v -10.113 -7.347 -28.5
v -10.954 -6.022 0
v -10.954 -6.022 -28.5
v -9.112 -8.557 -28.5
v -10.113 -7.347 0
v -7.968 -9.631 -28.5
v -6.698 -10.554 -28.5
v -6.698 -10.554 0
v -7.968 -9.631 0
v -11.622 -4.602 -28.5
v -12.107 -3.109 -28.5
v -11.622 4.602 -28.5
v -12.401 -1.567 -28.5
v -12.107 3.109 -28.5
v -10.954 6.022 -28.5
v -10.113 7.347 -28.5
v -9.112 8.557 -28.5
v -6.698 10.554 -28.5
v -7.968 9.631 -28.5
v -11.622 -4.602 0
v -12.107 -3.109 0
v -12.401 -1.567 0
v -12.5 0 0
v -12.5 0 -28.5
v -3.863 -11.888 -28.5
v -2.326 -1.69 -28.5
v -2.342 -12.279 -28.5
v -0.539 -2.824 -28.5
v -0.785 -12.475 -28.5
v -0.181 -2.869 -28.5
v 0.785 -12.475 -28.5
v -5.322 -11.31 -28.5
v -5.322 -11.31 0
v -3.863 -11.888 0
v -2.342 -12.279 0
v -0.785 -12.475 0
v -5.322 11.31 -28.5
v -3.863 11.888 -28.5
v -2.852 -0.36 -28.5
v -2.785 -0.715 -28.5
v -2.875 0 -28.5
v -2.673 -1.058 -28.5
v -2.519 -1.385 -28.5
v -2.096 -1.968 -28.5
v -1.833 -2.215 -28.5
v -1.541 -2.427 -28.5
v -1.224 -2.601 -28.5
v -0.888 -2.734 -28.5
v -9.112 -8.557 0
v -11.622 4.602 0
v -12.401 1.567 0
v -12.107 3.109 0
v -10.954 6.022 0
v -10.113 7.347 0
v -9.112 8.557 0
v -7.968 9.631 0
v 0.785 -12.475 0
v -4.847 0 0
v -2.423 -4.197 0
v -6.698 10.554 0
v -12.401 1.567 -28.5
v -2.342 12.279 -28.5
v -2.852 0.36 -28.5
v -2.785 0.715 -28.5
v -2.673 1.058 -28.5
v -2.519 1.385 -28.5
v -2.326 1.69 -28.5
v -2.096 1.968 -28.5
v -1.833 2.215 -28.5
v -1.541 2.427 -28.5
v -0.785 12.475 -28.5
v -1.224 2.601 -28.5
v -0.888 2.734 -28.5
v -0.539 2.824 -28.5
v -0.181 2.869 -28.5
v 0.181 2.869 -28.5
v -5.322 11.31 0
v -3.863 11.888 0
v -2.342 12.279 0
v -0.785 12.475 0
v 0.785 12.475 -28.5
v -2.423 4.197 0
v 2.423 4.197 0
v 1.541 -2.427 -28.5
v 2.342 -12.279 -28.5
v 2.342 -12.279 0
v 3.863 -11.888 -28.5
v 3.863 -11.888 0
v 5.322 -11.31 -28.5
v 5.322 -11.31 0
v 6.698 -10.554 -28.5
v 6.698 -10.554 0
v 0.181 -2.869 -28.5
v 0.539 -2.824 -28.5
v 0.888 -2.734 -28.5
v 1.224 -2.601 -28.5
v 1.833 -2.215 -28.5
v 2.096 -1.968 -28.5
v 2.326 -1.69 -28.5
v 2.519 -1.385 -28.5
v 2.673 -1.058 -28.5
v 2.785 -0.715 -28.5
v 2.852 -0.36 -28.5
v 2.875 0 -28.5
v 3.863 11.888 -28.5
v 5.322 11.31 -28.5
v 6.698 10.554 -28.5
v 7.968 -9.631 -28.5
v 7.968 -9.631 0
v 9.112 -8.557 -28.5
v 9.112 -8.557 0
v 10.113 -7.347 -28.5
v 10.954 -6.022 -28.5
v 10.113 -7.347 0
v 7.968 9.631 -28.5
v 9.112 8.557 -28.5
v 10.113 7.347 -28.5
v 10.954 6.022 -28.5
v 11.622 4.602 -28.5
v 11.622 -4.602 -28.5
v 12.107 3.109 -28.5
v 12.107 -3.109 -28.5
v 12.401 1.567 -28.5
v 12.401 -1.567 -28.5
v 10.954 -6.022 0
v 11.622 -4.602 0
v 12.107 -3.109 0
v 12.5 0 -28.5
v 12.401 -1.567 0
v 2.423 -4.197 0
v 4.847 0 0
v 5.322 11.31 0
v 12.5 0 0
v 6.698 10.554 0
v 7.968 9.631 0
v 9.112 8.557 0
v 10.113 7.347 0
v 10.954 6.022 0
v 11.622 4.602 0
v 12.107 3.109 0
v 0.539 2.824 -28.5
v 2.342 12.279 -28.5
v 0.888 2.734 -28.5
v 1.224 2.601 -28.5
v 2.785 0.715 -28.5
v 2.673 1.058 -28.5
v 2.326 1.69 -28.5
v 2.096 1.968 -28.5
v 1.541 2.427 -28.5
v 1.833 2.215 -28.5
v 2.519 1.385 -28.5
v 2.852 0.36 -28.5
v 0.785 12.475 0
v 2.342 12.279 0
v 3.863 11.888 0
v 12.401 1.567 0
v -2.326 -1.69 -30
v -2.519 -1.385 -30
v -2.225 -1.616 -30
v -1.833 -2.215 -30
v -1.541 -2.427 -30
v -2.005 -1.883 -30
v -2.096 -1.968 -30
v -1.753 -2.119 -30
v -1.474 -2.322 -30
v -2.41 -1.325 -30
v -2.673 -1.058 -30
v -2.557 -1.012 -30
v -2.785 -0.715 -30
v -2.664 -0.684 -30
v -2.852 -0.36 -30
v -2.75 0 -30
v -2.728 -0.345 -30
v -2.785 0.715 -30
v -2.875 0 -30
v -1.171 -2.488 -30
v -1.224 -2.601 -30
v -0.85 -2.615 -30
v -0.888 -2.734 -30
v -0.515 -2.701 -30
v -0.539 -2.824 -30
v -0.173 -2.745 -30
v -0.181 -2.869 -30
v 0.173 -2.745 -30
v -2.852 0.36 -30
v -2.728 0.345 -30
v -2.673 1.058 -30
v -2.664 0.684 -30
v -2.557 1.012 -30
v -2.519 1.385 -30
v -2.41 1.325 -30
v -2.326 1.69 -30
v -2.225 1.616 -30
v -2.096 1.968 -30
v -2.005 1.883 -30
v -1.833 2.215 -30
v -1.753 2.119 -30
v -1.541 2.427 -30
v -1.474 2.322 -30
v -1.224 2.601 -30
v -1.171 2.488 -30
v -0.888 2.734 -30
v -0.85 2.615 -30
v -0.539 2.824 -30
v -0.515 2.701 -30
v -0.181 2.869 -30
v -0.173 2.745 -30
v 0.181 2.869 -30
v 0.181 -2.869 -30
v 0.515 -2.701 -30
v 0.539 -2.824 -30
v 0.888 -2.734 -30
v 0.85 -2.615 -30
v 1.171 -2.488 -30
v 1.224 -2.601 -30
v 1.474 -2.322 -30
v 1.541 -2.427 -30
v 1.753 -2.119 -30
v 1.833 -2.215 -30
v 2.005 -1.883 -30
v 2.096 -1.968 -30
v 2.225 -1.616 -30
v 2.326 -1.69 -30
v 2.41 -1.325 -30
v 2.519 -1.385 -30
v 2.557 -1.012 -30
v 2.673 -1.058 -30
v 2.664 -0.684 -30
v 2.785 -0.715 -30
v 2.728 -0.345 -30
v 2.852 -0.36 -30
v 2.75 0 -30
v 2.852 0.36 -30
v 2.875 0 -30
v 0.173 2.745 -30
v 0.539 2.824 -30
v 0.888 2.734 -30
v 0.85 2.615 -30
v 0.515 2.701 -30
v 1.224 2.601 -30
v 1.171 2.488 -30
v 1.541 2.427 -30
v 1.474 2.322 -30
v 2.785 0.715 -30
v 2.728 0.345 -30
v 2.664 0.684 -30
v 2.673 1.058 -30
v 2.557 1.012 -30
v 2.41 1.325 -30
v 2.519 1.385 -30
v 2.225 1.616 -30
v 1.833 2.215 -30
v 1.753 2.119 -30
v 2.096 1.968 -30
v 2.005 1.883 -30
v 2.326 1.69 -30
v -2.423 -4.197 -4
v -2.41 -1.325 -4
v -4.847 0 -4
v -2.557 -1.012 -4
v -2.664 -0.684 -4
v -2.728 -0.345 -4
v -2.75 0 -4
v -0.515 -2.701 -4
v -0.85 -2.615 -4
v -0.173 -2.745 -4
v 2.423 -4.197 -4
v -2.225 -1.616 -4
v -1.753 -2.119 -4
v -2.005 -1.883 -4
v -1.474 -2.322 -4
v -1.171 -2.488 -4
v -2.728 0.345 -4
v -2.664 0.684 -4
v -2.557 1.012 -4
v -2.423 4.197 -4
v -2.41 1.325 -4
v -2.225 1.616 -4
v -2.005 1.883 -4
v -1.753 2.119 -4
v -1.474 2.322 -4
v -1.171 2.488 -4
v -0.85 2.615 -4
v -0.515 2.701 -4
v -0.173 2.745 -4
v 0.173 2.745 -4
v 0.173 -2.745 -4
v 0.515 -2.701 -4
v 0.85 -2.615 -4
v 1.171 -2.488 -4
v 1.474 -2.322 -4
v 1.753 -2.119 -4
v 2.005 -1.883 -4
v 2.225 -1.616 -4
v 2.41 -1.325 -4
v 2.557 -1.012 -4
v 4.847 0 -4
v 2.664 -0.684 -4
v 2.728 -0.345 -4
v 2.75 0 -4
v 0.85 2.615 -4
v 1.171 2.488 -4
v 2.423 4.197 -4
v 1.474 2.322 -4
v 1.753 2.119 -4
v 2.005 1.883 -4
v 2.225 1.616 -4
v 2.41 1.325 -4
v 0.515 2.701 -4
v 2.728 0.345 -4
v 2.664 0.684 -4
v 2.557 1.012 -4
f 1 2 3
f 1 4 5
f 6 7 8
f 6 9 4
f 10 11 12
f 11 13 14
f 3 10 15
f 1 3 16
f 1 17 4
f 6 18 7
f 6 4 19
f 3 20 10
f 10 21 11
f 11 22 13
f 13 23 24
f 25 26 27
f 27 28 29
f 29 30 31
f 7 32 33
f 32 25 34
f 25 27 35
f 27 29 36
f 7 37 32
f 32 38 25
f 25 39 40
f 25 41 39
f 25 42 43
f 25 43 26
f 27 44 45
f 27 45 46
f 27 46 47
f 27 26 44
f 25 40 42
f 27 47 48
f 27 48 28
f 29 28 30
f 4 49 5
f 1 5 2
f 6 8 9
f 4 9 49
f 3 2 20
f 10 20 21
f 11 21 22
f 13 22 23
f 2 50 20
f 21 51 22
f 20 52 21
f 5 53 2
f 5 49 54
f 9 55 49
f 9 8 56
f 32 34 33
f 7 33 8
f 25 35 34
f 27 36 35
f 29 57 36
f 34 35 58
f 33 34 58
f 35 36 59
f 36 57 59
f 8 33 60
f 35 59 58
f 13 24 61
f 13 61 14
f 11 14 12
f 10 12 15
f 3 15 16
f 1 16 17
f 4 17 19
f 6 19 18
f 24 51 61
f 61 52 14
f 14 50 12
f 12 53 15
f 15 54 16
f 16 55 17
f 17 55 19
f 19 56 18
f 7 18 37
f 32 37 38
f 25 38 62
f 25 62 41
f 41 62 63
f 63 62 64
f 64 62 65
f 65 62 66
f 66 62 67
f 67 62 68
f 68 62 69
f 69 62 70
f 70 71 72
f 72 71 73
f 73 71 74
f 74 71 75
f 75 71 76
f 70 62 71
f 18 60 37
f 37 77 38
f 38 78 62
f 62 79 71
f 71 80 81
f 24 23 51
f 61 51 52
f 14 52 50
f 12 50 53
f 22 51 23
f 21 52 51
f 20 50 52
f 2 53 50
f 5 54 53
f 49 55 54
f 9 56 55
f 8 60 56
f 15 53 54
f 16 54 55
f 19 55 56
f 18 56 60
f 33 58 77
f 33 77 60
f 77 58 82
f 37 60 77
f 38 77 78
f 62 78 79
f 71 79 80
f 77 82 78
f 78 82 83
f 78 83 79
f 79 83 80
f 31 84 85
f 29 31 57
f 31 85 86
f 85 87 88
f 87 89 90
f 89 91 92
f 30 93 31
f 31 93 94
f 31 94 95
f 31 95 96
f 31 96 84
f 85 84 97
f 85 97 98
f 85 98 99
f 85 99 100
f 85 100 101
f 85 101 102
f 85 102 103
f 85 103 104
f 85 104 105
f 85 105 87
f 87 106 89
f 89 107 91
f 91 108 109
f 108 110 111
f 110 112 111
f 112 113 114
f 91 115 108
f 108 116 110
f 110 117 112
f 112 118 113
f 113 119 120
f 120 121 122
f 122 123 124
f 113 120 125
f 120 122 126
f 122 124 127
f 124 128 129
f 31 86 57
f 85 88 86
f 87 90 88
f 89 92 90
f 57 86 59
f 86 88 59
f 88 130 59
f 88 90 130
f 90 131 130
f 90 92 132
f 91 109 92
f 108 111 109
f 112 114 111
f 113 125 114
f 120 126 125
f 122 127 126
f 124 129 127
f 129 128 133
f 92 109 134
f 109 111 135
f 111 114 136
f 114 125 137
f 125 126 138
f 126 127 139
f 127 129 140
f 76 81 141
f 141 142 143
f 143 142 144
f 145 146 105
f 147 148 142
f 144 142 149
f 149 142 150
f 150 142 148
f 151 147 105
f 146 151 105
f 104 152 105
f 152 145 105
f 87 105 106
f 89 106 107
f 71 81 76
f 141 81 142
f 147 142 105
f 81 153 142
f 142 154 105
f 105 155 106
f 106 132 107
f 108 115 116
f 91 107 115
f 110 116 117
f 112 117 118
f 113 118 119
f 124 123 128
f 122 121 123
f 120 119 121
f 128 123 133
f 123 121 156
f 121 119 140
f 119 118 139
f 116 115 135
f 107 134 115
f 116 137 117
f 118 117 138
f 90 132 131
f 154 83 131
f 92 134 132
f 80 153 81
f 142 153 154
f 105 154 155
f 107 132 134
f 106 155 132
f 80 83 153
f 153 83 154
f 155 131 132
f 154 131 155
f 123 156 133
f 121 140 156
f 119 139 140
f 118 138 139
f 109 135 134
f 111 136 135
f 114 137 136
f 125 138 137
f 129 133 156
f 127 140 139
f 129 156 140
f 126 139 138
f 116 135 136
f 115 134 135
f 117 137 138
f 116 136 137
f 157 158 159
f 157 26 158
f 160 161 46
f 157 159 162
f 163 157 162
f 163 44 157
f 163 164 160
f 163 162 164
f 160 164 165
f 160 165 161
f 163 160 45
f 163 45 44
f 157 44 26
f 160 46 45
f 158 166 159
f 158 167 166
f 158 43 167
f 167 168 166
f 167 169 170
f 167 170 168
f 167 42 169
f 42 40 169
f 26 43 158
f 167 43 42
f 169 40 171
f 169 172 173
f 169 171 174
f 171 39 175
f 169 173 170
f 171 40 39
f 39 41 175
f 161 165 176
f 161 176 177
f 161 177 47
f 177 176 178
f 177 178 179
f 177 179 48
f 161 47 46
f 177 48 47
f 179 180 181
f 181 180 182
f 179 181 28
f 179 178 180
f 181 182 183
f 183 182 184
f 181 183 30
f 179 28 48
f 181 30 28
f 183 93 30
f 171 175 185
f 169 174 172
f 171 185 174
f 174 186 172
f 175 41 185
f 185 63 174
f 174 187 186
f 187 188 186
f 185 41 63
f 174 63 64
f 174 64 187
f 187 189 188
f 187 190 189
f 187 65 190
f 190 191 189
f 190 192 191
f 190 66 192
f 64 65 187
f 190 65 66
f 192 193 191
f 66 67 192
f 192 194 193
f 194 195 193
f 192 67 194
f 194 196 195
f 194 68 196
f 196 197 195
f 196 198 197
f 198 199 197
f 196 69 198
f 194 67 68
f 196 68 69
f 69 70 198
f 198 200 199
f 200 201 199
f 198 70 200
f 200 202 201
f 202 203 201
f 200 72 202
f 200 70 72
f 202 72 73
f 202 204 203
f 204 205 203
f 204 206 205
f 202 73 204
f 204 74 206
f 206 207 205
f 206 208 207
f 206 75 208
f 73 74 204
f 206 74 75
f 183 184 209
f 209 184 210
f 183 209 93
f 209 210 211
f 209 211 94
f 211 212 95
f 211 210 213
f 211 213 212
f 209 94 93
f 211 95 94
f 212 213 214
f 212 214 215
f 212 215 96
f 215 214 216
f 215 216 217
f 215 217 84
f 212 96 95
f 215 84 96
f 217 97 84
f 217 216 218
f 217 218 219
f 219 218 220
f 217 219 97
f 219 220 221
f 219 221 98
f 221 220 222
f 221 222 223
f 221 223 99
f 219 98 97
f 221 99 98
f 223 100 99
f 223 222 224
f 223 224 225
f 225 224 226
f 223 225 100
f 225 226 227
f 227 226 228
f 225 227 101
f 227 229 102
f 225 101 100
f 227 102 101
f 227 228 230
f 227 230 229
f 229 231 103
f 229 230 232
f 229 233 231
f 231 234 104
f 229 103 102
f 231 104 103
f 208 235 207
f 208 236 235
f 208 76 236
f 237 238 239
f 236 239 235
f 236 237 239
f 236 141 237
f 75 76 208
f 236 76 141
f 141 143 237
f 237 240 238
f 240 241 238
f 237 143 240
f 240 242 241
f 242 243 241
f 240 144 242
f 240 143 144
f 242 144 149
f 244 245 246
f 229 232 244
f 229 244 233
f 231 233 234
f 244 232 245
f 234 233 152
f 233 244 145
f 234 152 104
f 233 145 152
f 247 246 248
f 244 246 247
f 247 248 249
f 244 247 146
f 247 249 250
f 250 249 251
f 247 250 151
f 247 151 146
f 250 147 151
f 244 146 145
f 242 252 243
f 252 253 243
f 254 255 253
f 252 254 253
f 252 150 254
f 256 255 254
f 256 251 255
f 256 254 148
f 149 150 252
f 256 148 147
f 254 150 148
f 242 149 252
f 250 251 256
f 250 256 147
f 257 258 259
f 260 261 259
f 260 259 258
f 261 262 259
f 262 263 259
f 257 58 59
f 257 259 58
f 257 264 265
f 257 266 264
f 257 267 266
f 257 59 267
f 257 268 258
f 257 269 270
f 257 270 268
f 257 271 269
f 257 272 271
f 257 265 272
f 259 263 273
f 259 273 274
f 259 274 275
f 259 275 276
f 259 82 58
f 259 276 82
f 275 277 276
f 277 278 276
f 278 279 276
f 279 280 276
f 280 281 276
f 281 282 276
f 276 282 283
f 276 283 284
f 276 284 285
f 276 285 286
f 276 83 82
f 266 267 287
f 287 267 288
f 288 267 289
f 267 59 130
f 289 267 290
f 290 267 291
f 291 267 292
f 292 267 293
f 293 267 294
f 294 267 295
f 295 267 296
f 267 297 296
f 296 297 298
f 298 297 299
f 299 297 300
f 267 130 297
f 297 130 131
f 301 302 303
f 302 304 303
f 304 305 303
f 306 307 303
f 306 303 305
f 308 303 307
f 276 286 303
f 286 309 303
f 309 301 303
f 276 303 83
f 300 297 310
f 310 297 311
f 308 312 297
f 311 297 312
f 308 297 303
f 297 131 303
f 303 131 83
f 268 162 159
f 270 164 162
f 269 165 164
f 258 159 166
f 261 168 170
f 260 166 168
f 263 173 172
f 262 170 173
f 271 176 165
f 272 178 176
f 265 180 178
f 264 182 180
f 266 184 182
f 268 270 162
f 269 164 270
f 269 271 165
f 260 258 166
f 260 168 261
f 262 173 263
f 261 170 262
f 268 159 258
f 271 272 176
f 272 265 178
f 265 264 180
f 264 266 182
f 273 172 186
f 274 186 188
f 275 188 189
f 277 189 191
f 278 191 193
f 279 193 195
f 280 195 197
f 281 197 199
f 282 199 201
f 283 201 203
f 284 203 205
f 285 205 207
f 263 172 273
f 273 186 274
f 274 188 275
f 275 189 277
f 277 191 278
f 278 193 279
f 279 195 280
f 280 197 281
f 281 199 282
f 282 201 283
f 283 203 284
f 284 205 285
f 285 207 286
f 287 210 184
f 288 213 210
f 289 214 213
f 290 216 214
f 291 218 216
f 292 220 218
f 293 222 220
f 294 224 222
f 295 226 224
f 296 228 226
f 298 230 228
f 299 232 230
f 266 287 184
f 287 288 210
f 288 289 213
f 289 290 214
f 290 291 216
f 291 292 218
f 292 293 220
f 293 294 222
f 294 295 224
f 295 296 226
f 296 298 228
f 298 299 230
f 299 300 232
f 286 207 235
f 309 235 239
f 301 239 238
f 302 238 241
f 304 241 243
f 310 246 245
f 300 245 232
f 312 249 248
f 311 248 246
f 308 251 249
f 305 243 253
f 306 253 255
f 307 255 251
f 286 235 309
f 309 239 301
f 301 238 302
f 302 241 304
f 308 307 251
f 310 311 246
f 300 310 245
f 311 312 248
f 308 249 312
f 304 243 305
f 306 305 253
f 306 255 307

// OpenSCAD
$fn = 50;

difference() {
	union() {
		translate(v = [0, 0, -28.5]) {
			cylinder(h = 28.5, r = 12.5);
		}
		#translate(v = [0, 0, -30.0]) {
			cylinder(h = 30, r = 2.875);
		}
	}
	union() {
		translate(v = [0, 0, 0]) {
			rotate(a = [0, 0, 0]) {
				difference() {
					union() {
						translate(v = [0, 0, -4]) {
							linear_extrude(height = 4) {
								polygon(points = [[4.8468, 0.0], [2.4234000000000004, 4.197451927062417], [-2.423399999999999, 4.197451927062417], [-4.8468, 5.935618106107392e-16], [-2.423400000000002, -4.197451927062416], [2.423399999999997, -4.197451927062419]]);
							}
						}
					}
					union();
				}
			}
		}
		#translate(v = [0, 0, -100.0]) {
			cylinder(h = 200, r = 2.75);
		}
	}
}
